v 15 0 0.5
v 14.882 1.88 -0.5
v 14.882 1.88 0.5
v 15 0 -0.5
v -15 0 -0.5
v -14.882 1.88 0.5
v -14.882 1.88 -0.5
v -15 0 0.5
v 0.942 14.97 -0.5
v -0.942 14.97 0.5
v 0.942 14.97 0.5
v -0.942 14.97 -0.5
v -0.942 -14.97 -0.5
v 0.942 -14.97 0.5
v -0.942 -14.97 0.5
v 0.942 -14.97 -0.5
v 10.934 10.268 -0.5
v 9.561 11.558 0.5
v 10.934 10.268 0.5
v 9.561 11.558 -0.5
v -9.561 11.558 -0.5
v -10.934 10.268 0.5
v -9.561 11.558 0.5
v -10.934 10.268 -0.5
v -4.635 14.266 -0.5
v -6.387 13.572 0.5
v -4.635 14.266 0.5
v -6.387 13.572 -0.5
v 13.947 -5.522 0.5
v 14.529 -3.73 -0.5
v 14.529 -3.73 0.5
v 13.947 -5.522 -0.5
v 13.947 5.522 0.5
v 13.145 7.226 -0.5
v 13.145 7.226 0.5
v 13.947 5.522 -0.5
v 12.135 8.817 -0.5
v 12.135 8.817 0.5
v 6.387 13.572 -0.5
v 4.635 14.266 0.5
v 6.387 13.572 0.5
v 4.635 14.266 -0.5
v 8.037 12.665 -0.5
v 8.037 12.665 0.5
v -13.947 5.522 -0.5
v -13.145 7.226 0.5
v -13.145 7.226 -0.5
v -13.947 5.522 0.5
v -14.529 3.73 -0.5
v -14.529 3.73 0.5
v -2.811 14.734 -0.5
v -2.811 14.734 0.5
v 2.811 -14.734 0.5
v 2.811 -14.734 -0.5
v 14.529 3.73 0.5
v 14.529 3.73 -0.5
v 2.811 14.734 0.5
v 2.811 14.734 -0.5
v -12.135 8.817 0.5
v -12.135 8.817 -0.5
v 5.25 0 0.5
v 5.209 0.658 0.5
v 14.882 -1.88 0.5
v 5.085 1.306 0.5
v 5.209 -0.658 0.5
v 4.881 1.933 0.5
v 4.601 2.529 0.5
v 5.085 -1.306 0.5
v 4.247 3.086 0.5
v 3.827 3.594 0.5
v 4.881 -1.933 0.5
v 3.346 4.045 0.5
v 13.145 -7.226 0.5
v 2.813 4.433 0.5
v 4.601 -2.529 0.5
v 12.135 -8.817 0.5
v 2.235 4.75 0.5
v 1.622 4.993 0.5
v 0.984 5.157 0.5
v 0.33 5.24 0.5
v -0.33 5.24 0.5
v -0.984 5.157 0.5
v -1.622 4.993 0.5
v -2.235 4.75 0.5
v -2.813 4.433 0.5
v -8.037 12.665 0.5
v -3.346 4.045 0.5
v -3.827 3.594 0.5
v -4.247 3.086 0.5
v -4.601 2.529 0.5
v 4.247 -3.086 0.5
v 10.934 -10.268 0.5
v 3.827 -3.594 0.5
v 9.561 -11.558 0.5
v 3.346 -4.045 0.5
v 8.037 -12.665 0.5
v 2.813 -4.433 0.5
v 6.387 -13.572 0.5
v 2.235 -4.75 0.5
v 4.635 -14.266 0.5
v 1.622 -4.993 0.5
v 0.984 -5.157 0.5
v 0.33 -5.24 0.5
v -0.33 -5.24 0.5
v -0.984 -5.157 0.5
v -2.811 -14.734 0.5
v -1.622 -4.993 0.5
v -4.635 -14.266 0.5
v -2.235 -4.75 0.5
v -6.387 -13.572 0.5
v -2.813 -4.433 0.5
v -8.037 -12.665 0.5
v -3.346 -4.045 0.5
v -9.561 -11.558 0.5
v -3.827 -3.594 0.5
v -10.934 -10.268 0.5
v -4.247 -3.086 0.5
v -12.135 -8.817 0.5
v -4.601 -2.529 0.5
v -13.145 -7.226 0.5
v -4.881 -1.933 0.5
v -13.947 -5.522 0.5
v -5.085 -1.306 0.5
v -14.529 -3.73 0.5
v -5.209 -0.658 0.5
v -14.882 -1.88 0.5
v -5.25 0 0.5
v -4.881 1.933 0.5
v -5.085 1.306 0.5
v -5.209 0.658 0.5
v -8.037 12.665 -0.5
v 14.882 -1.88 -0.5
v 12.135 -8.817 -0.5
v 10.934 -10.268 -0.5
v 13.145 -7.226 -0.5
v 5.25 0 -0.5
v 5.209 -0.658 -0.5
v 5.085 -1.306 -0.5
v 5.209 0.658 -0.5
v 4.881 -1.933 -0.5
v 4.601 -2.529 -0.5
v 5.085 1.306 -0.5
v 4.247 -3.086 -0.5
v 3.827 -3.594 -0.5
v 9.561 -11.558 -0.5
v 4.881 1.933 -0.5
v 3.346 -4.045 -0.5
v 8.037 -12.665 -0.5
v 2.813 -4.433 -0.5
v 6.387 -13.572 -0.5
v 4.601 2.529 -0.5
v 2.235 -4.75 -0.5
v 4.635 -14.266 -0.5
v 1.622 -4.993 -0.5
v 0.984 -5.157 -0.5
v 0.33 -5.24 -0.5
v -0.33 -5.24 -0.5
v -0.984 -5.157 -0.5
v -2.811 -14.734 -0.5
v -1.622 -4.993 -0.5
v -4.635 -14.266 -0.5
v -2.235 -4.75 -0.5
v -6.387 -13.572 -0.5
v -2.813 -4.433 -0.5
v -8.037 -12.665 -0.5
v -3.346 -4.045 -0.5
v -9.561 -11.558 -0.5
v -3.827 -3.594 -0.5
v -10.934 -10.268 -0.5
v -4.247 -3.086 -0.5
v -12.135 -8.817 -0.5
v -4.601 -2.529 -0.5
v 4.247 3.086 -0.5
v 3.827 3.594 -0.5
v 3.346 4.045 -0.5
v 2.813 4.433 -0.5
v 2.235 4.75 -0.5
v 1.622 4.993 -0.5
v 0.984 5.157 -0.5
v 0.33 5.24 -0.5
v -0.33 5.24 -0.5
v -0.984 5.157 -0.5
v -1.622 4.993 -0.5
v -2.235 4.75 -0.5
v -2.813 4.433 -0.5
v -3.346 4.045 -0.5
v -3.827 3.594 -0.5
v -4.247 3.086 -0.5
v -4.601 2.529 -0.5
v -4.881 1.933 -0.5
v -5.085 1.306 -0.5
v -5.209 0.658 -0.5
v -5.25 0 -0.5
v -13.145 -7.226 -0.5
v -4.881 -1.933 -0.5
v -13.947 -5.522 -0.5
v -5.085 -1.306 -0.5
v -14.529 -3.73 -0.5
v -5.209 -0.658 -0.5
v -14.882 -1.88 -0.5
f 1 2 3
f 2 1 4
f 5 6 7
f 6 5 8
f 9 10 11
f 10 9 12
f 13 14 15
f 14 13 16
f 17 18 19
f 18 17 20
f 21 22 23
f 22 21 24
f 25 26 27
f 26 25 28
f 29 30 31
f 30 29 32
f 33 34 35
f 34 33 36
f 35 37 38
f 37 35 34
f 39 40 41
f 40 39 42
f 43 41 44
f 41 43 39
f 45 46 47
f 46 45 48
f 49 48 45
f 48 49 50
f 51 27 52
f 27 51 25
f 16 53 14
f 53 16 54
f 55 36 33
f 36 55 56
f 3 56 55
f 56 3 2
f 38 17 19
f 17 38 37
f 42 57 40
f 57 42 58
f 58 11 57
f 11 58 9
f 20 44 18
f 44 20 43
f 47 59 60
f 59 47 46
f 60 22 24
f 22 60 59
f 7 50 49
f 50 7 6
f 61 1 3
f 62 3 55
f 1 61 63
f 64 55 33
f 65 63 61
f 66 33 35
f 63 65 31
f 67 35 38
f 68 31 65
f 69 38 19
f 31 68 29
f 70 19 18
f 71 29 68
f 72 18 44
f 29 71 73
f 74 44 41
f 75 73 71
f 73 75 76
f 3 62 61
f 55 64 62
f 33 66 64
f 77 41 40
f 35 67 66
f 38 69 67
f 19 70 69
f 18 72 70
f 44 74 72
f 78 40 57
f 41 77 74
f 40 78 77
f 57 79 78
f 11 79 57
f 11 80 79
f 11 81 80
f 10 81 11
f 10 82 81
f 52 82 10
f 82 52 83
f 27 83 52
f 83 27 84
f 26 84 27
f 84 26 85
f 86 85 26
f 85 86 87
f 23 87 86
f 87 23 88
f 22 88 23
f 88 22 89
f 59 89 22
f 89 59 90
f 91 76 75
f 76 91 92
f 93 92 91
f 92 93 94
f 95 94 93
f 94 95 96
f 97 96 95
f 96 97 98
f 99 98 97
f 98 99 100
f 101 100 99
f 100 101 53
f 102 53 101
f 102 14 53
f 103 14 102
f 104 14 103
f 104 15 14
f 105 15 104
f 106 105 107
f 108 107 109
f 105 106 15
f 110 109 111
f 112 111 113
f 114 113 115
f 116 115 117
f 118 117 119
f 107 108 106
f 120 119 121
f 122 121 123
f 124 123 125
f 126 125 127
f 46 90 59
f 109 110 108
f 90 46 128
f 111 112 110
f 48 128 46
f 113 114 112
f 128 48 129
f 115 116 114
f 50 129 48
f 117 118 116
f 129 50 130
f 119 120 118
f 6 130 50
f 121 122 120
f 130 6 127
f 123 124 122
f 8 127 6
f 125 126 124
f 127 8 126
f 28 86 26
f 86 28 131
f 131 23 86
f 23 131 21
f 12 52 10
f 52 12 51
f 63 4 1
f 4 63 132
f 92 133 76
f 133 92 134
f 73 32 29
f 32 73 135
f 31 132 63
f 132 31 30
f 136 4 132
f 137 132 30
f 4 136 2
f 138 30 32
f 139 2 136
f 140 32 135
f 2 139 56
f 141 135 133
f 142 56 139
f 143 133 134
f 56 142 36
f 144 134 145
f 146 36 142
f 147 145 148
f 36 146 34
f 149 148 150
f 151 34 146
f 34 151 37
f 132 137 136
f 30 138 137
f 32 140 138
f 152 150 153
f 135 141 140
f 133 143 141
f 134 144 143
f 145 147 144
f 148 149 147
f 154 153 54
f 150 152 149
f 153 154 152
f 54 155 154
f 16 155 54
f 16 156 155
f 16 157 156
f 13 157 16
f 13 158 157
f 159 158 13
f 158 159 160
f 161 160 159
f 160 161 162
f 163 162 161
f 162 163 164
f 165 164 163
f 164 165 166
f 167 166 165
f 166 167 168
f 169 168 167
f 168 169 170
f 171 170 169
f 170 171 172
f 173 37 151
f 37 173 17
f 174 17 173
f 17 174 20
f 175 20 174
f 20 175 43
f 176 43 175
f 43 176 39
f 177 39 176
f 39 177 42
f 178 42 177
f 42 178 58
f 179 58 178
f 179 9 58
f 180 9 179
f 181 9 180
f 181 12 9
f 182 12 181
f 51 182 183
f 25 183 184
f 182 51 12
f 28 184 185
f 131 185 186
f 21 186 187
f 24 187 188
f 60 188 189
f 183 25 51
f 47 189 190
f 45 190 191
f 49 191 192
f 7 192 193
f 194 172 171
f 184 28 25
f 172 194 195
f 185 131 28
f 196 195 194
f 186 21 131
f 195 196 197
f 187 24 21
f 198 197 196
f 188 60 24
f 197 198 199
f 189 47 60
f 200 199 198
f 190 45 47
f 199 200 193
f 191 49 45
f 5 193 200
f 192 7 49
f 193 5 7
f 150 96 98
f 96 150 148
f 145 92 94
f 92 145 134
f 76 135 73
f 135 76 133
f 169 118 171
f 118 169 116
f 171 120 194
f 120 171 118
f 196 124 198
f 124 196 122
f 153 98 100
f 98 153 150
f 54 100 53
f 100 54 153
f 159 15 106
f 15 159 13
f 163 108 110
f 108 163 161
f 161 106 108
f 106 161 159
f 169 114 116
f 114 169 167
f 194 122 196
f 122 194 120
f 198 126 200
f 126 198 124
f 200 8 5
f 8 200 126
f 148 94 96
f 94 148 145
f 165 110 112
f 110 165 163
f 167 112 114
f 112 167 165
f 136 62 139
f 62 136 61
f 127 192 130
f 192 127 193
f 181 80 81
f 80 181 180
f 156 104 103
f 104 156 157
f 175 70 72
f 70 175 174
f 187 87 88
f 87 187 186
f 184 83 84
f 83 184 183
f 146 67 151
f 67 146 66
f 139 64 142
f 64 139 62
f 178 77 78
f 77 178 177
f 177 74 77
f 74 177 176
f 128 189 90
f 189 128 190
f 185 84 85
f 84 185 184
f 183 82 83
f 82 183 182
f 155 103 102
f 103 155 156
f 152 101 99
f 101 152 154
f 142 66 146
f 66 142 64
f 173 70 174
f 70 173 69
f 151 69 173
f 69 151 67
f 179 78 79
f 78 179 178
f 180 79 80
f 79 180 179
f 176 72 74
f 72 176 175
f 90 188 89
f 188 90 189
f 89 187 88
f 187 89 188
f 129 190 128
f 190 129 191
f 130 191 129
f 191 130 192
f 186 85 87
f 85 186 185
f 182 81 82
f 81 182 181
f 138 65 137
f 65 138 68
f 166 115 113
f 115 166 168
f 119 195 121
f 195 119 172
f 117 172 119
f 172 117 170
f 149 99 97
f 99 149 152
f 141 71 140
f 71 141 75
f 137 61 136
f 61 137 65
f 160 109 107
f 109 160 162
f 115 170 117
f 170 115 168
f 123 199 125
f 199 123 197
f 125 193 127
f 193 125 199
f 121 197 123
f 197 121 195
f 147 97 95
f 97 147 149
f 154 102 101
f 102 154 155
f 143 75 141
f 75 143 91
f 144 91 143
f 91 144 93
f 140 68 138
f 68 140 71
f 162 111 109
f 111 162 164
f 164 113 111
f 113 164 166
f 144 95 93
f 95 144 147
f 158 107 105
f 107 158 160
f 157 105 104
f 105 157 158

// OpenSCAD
$fn = 50;


difference() {
	union() {
		translate(v = [0, 0, -0.5000000000]) {
			cylinder(h = 1, r = 15.0000000000);
		}
	}
	union() {
		translate(v = [0, 0, -100.0000000000]) {
			cylinder(h = 200, r = 5.2500000000);
		}
	}
}
